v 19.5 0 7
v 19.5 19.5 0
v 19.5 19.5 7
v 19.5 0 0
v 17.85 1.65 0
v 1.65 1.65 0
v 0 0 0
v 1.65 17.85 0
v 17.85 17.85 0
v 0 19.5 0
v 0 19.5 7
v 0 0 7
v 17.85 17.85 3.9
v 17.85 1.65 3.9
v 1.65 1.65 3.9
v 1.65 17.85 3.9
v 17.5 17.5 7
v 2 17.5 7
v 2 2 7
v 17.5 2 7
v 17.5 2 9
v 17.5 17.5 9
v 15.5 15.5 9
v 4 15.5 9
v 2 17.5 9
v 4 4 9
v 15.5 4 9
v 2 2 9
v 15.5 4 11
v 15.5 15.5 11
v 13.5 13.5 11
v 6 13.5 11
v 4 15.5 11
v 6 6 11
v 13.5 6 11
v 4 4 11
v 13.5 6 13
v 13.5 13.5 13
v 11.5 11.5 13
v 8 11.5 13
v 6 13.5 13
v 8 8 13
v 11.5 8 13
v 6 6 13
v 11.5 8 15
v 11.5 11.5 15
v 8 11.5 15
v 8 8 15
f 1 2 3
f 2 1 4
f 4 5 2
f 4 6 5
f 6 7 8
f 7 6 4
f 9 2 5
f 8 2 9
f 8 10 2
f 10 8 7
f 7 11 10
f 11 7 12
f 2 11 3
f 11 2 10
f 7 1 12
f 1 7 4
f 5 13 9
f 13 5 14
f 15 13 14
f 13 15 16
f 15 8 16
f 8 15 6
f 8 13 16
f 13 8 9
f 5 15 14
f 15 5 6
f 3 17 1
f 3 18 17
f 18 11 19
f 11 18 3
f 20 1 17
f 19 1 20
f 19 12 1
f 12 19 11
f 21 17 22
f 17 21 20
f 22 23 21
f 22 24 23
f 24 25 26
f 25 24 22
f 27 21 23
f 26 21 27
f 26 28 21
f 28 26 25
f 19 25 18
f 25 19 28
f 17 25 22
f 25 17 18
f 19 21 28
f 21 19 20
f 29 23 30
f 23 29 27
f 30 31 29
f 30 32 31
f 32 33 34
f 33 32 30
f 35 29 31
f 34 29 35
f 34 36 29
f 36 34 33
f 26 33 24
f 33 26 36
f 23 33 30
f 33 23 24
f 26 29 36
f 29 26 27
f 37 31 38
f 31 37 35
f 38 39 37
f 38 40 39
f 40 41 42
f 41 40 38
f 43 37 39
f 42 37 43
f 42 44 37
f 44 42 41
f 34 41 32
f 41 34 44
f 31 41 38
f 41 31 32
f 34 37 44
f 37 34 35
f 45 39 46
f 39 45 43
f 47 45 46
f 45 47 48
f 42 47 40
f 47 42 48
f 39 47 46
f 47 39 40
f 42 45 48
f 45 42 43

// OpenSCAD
// file: CommonModules.scad
//    $$$$$$\   $$$$$$\   $$$$$$\  $$\   $$\ $$$$$$\ $$$$$$$\  $$$$$$$$\ 
//    $$  __$$\ $$  __$$\ $$  __$$\ $$ |  $$ |\_$$  _|$$  __$$\ $$  _____|
//    $$ /  $$ |$$ /  \__|$$ /  $$ |$$ |  $$ |  $$ |  $$ |  $$ |$$ |      
//    $$$$$$$$ |$$ |      $$ |  $$ |$$ |  $$ |  $$ |  $$$$$$$  |$$$$$\    
//    $$  __$$ |$$ |      $$ |  $$ |$$ |  $$ |  $$ |  $$  __$$< $$  __|   
//    $$ |  $$ |$$ |  $$\ $$ $$\$$ |$$ |  $$ |  $$ |  $$ |  $$ |$$ |      
//    $$ |  $$ |\$$$$$$  |\$$$$$$ / \$$$$$$  |$$$$$$\ $$ |  $$ |$$$$$$$$\ 
//    \__|  \__| \______/  \___$$$\  \______/ \______|\__|  \__|\________|
//                            \___|                                      
//      
//       Print and play - OpenScad project - by Bekkalizer - GPLv3
// 
// This file is part of the Acquire stl project.
// Copyright (C) 2025 Bekkalizer
//
// Acquire stl project is free software: you can redistribute it and/or modify
// it under the terms of the GNU General Public License as published
// by the Free Software Foundation, either version 3 of the License,
// or (at your option) any later version.
//
// Acquire stl project is distributed in the hope that it will be useful,
// but WITHOUT ANY WARRANTY; without even the implied warranty of
// MERCHANTABILITY or FITNESS FOR A PARTICULAR PURPOSE. See the
// GNU General Public License for more details.
//
// You should have received a copy of the GNU General Public License
// along with this program. If not, see <https://www.gnu.org/licenses/>.

module cube_with_extruded_bottom( cube_size = [19.5, 19.5, 5] ) {
    //Main build script parameters:
    max_width = 19.2;
    top_lip = 2;
    top_height = 3;
    //Calculated hole size:
    inside_margins = 1;
    hole_width = max_width - 2 * (top_lip) + inside_margins;
    hole_height = top_height + inside_margins;
    
    hole_size = [hole_width, hole_width, hole_height]; // Hole dimensions (same height as cube)
    hole_offset = [(cube_size[0] - hole_size[0]) / 2, (cube_size[1] - hole_size[1]) / 2, -0.1]; // Centered on bottom
    difference() {
        // Main Cube
        cube(cube_size);
        
        // Hole Cube (subtracting from bottom)
        translate(hole_offset)
            cube(hole_size);
    }
}
// main file
//    $$$$$$\   $$$$$$\   $$$$$$\  $$\   $$\ $$$$$$\ $$$$$$$\  $$$$$$$$\ 
//    $$  __$$\ $$  __$$\ $$  __$$\ $$ |  $$ |\_$$  _|$$  __$$\ $$  _____|
//    $$ /  $$ |$$ /  \__|$$ /  $$ |$$ |  $$ |  $$ |  $$ |  $$ |$$ |      
//    $$$$$$$$ |$$ |      $$ |  $$ |$$ |  $$ |  $$ |  $$$$$$$  |$$$$$\    
//    $$  __$$ |$$ |      $$ |  $$ |$$ |  $$ |  $$ |  $$  __$$< $$  __|   
//    $$ |  $$ |$$ |  $$\ $$ $$\$$ |$$ |  $$ |  $$ |  $$ |  $$ |$$ |      
//    $$ |  $$ |\$$$$$$  |\$$$$$$ / \$$$$$$  |$$$$$$\ $$ |  $$ |$$$$$$$$\ 
//    \__|  \__| \______/  \___$$$\  \______/ \______|\__|  \__|\________|
//                            \___|                                      
//      
//       Print and play - OpenScad project - by Bekkalizer - GPLv3
// 
// This file is part of the Acquire stl project.
// Copyright (C) 2025 Bekkalizer
//
// Acquire stl project is free software: you can redistribute it and/or modify
// it under the terms of the GNU General Public License as published
// by the Free Software Foundation, either version 3 of the License,
// or (at your option) any later version.
//
// Acquire stl project is distributed in the hope that it will be useful,
// but WITHOUT ANY WARRANTY; without even the implied warranty of
// MERCHANTABILITY or FITNESS FOR A PARTICULAR PURPOSE. See the
// GNU General Public License for more details.
//
// You should have received a copy of the GNU General Public License
// along with this program. If not, see <https://www.gnu.org/licenses/>.

use <CommonModules.scad>

// ============== Parameters ==============
bottom_hotel = [19.5, 19.5, 5]; // Main cube dimensions
step_height_dimension = 2;
step_width_dimension = 2;
number_of_steps = 4;

// Draw the main hotel lobby 
cube_with_extruded_bottom(bottom_hotel);
for( i = [0 : number_of_steps] ) {
    step_height = step_height_dimension;
    step_width = step_width_dimension;
    translate([step_width*i,step_width * i,bottom_hotel[2] + step_height * i]) {
        cube([bottom_hotel[0]-step_width*2*i, bottom_hotel[1]-step_width*2*i, step_height]);
    }
}
